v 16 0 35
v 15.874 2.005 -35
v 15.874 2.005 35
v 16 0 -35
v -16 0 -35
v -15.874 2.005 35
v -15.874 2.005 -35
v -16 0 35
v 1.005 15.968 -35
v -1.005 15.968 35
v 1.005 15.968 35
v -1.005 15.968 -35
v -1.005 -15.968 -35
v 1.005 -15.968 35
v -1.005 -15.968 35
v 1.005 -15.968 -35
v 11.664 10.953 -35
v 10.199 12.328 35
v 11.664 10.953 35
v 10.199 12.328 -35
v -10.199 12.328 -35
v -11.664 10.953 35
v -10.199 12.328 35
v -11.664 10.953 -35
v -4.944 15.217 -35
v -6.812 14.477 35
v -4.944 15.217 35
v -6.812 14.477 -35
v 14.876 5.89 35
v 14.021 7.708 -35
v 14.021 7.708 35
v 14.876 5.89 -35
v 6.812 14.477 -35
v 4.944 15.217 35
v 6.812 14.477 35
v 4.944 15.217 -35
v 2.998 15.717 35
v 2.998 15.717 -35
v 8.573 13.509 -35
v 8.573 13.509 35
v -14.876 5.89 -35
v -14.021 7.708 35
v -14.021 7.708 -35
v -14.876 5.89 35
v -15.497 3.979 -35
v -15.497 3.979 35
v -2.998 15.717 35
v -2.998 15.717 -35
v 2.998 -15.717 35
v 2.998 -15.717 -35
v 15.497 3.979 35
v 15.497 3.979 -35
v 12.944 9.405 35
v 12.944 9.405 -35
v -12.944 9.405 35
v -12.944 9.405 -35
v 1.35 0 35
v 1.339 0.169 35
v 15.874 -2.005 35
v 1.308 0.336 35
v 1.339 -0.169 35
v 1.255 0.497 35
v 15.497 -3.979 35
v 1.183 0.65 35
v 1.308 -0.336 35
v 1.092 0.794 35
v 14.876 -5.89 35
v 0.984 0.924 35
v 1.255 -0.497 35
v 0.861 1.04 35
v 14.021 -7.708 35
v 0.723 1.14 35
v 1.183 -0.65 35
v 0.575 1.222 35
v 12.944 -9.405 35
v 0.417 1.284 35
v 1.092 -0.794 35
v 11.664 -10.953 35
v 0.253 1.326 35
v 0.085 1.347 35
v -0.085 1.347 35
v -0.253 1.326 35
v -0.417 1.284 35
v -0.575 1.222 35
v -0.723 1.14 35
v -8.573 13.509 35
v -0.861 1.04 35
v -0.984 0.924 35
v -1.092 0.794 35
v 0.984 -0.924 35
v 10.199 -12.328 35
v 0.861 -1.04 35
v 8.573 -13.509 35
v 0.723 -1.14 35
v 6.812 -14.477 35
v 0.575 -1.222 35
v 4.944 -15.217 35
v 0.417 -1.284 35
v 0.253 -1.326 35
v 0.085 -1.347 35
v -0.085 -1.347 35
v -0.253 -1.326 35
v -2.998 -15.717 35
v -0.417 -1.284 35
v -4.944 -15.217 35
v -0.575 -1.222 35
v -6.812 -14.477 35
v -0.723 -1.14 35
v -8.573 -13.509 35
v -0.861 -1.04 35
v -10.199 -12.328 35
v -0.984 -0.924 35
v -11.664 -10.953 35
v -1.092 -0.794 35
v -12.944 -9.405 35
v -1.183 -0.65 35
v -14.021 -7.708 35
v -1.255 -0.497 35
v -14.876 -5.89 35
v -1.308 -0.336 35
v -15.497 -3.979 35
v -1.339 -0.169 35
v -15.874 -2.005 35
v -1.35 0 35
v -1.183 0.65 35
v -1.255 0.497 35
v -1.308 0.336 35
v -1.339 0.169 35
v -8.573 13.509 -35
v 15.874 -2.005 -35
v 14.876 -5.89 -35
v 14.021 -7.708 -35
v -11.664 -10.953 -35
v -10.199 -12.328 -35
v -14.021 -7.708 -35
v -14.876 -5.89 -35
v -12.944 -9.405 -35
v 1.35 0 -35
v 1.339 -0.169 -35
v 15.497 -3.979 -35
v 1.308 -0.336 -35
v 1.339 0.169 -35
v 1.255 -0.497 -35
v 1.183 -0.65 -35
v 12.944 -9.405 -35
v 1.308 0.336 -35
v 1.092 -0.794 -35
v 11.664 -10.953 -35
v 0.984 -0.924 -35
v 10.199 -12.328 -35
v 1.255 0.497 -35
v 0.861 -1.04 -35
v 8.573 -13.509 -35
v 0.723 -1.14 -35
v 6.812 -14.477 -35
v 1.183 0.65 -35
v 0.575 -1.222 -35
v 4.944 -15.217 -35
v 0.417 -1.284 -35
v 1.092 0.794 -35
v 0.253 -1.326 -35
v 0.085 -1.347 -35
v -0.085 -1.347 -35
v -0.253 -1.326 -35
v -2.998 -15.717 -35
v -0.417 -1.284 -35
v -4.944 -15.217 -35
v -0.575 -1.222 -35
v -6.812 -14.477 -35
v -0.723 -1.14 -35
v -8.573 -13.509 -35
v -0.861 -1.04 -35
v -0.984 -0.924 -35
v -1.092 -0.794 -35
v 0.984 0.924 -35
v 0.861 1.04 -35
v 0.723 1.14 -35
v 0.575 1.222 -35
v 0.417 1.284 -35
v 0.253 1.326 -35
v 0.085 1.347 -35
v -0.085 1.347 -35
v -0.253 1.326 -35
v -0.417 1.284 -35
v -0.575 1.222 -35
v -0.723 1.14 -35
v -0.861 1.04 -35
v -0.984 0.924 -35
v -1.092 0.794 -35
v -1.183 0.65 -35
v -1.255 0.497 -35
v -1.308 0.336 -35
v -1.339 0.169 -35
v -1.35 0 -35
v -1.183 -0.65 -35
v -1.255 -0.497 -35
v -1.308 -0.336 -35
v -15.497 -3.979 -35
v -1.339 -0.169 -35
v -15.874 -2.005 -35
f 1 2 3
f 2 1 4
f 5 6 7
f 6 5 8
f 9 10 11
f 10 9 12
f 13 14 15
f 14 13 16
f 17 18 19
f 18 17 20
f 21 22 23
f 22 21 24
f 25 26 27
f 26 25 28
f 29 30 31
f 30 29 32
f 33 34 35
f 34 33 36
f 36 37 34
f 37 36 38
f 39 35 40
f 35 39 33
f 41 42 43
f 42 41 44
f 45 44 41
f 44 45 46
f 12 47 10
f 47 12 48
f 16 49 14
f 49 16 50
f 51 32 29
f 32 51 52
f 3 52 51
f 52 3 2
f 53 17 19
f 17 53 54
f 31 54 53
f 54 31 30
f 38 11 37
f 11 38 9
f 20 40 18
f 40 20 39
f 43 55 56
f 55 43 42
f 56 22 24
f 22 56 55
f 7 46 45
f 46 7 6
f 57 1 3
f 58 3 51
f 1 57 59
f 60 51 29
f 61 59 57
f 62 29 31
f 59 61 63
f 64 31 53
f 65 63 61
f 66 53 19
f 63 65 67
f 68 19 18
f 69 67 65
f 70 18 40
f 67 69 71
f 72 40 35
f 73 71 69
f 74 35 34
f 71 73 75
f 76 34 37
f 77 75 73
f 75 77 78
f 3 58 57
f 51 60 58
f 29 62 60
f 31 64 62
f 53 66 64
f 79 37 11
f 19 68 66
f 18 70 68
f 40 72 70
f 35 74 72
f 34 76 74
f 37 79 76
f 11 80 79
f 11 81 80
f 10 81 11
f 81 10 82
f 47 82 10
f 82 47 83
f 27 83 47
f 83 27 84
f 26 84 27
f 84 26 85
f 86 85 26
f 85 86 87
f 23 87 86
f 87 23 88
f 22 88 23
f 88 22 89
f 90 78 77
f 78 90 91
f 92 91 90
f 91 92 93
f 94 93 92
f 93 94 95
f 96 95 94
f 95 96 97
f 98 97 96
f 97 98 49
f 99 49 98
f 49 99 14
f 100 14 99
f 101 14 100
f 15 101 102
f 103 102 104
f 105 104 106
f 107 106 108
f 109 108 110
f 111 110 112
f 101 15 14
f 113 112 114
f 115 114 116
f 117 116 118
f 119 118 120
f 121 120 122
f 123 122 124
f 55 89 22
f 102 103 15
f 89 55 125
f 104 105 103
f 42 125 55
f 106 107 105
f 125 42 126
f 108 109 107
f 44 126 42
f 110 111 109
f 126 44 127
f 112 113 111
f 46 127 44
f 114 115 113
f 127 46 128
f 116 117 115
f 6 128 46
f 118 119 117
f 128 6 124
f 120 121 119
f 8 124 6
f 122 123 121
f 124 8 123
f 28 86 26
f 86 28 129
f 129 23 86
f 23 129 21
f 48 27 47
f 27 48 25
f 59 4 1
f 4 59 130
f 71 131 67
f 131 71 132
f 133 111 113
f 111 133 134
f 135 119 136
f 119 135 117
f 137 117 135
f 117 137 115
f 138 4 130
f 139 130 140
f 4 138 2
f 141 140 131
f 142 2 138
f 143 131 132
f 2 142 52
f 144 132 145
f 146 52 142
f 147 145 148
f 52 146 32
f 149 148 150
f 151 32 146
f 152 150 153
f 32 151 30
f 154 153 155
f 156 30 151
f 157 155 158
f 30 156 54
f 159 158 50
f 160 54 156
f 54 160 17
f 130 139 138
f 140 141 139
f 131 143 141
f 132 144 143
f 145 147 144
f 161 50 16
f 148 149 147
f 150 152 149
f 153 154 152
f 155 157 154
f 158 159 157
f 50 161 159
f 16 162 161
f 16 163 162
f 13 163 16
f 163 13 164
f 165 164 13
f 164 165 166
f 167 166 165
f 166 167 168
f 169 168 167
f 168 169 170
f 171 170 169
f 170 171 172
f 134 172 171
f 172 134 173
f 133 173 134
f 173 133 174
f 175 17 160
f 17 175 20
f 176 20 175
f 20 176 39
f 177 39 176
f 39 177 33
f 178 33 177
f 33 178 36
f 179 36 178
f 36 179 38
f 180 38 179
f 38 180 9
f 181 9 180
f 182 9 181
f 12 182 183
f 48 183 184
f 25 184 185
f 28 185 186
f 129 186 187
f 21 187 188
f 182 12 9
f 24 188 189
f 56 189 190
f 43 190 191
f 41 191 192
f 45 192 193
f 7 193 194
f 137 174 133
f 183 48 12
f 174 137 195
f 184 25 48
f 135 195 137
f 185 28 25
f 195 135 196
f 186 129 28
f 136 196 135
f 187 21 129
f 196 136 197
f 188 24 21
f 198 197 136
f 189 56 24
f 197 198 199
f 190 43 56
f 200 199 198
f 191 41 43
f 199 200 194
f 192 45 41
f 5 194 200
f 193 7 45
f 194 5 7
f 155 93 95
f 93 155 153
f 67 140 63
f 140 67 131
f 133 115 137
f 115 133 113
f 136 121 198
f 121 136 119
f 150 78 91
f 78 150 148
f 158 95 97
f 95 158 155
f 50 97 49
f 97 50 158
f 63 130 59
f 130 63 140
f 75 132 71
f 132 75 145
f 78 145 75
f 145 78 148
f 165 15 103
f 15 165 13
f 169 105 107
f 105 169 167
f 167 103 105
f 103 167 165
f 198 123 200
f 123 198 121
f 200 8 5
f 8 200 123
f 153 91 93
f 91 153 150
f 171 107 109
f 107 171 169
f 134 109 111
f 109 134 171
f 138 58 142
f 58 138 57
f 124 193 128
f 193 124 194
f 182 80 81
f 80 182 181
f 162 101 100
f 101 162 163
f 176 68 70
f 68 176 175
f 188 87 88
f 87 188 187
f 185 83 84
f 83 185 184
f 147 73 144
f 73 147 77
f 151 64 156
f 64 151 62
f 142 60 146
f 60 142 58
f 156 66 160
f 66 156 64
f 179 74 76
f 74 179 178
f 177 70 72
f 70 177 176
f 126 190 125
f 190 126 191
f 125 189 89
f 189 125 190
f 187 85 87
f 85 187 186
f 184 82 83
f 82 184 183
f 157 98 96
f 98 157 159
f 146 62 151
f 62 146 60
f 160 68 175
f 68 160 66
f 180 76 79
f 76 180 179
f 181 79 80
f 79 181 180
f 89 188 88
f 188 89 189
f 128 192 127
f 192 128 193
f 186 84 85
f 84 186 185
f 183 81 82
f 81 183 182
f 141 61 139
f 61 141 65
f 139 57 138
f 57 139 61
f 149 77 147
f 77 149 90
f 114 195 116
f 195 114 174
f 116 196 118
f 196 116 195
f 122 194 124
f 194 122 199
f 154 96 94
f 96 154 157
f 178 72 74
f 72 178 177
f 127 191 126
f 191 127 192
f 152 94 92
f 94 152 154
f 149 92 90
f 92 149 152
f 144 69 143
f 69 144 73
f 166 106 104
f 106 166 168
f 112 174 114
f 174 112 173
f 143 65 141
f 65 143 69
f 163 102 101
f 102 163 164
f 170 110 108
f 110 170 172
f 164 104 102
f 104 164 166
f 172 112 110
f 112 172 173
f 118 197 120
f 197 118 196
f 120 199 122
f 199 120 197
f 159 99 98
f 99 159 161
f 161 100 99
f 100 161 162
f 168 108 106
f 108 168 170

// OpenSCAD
$fn = 50;


difference() {
	union() {
		translate(v = [0, 0, -35.0000000000]) {
			cylinder(h = 70, r = 16.0000000000);
		}
	}
	union() {
		translate(v = [0, 0, -100.0000000000]) {
			cylinder(h = 200, r = 1.3500000000);
		}
	}
}
